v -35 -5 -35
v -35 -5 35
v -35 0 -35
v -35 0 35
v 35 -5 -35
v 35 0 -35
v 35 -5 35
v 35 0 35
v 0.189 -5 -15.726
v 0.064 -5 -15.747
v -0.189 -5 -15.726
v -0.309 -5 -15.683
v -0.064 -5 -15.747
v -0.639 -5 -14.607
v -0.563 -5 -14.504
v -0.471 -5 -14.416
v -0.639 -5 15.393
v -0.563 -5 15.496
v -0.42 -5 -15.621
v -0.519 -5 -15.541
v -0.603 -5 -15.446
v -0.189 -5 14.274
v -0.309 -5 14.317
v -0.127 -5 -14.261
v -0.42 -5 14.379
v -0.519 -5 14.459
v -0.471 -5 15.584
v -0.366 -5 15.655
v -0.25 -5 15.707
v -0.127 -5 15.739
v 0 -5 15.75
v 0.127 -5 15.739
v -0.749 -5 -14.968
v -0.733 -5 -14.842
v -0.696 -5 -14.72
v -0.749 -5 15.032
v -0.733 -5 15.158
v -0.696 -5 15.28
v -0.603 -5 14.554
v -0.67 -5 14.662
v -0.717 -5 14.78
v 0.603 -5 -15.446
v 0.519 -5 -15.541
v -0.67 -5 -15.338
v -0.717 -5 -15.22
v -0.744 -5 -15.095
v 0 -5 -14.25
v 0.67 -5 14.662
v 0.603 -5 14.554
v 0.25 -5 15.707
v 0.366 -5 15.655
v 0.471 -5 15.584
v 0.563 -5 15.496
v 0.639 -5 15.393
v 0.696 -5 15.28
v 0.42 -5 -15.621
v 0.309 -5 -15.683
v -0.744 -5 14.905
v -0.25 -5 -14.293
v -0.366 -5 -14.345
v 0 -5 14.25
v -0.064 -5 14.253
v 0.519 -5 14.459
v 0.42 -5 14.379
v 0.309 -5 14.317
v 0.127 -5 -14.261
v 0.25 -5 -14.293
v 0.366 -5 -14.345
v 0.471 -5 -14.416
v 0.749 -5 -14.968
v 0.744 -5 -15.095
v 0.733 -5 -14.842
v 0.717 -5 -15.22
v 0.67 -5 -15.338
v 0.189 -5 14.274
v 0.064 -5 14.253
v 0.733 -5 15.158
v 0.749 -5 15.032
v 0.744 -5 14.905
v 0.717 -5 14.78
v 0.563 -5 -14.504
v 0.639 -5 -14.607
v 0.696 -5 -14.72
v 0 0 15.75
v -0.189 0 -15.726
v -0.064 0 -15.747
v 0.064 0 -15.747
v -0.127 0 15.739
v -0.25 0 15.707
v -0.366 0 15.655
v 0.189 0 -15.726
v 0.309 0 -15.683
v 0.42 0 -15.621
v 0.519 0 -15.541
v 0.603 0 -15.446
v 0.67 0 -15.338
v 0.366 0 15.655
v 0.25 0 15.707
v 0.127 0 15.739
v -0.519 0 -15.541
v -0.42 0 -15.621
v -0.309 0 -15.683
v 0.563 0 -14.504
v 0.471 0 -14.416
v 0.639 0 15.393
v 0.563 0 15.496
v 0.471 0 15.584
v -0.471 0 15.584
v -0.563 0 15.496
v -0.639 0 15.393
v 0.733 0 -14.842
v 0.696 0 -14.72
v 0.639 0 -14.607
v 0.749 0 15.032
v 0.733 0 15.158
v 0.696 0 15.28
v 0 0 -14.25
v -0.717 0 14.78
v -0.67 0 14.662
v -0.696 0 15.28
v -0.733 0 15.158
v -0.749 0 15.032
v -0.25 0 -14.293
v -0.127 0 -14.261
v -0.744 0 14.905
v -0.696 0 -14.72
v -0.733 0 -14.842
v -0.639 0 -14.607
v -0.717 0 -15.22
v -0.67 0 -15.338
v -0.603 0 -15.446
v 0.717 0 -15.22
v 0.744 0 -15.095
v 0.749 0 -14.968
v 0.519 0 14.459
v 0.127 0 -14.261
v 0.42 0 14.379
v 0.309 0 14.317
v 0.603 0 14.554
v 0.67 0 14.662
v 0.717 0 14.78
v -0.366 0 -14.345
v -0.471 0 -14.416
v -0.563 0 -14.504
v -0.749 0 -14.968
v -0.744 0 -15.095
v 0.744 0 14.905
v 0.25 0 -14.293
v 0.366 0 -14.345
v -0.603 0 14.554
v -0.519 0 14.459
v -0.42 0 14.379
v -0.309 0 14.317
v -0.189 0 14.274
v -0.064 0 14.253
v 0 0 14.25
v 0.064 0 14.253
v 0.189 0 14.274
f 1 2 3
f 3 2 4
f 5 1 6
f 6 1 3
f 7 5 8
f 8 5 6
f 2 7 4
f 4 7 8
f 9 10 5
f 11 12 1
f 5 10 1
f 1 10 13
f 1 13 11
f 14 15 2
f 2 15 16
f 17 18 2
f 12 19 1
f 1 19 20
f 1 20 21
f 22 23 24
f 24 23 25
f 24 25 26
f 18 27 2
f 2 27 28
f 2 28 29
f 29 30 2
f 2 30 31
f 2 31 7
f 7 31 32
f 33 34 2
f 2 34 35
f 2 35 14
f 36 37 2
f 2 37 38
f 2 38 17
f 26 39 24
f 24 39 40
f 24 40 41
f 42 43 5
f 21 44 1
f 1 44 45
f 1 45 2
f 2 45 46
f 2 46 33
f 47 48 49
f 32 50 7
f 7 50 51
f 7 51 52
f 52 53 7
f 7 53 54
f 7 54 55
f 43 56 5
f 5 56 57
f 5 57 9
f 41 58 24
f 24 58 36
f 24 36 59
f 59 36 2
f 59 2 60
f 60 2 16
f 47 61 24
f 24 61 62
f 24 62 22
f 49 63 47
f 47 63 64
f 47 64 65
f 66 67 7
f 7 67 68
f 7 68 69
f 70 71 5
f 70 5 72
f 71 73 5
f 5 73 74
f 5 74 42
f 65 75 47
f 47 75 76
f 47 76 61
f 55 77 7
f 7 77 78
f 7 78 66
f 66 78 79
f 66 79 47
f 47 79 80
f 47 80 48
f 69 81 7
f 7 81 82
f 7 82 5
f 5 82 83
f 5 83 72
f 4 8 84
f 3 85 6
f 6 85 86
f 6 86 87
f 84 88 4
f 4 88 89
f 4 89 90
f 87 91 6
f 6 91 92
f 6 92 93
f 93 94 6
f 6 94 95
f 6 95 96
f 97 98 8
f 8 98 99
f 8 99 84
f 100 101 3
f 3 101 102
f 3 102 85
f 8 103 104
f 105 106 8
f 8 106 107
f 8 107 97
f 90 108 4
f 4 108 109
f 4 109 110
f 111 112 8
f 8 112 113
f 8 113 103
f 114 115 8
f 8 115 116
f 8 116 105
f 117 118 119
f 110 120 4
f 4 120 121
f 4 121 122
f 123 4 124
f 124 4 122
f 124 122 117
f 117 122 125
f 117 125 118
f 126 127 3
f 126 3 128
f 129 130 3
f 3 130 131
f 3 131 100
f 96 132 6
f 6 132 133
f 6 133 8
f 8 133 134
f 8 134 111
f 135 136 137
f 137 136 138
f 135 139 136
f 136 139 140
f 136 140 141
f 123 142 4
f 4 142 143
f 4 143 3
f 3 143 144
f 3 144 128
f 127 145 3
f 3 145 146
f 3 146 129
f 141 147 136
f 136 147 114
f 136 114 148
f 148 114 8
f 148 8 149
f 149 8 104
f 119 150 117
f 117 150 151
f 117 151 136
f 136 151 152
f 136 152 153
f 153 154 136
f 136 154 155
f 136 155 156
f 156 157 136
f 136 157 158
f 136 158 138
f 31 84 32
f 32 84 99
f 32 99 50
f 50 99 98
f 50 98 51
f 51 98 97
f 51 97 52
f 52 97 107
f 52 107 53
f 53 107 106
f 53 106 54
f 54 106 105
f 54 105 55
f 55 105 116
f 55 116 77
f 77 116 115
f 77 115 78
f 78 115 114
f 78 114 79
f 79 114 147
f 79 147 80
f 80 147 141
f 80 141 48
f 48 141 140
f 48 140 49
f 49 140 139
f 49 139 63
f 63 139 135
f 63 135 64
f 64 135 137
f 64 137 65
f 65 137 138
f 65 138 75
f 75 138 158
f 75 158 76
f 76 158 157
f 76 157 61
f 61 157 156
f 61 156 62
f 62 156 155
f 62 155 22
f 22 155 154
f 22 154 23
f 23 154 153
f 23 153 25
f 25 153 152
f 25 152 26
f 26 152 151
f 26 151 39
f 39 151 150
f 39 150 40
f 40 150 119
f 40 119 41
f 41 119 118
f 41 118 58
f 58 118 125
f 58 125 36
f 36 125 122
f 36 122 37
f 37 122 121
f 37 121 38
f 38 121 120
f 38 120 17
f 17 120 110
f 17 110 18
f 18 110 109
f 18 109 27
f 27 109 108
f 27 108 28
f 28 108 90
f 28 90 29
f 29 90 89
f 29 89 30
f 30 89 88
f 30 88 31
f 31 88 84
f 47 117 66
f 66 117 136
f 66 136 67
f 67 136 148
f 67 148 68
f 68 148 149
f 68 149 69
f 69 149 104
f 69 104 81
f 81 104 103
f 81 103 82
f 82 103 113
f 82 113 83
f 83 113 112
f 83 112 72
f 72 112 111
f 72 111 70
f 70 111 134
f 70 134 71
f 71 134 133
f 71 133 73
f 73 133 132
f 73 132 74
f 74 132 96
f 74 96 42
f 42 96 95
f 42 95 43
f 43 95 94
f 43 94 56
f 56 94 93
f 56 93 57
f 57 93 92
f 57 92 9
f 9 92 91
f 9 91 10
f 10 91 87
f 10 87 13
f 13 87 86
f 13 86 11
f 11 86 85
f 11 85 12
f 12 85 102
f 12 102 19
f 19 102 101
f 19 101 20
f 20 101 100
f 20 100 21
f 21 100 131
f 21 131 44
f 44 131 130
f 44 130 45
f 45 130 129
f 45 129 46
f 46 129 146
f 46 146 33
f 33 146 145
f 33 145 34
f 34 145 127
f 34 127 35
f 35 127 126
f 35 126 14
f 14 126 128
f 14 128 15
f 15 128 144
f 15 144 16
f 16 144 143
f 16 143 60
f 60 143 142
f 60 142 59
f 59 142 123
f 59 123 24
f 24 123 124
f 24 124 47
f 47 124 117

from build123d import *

# Parameters (mm, degrees)
SKETCH1_W           = 70
SKETCH1_H           = 70
BOSS_EXTRUDE1_DEPTH = 5
SKETCH7_R           = 0.75
CUT_EXTRUDE1_DEPTH  = 6


with BuildPart() as part:
    # Sketch1 → Boss-Extrude1 (new body)
    with BuildSketch(Plane(origin=(0, 0, 0), x_dir=(1, 0, 0), z_dir=(0, 1, 0))):
        Rectangle(SKETCH1_W, SKETCH1_H)
    extrude(amount=-BOSS_EXTRUDE1_DEPTH)

    # Sketch7 → Cut-Extrude1 (cut, through all)
    with BuildSketch(Plane(origin=(0, 0, 0), x_dir=(1, 0, 0), z_dir=(0, 1, 0))):
        with Locations((0, 15)):
            Circle(SKETCH7_R)
        with Locations((0, -15)):
            Circle(SKETCH7_R)
    extrude(amount=-CUT_EXTRUDE1_DEPTH, mode=Mode.SUBTRACT)


solid = part.part
